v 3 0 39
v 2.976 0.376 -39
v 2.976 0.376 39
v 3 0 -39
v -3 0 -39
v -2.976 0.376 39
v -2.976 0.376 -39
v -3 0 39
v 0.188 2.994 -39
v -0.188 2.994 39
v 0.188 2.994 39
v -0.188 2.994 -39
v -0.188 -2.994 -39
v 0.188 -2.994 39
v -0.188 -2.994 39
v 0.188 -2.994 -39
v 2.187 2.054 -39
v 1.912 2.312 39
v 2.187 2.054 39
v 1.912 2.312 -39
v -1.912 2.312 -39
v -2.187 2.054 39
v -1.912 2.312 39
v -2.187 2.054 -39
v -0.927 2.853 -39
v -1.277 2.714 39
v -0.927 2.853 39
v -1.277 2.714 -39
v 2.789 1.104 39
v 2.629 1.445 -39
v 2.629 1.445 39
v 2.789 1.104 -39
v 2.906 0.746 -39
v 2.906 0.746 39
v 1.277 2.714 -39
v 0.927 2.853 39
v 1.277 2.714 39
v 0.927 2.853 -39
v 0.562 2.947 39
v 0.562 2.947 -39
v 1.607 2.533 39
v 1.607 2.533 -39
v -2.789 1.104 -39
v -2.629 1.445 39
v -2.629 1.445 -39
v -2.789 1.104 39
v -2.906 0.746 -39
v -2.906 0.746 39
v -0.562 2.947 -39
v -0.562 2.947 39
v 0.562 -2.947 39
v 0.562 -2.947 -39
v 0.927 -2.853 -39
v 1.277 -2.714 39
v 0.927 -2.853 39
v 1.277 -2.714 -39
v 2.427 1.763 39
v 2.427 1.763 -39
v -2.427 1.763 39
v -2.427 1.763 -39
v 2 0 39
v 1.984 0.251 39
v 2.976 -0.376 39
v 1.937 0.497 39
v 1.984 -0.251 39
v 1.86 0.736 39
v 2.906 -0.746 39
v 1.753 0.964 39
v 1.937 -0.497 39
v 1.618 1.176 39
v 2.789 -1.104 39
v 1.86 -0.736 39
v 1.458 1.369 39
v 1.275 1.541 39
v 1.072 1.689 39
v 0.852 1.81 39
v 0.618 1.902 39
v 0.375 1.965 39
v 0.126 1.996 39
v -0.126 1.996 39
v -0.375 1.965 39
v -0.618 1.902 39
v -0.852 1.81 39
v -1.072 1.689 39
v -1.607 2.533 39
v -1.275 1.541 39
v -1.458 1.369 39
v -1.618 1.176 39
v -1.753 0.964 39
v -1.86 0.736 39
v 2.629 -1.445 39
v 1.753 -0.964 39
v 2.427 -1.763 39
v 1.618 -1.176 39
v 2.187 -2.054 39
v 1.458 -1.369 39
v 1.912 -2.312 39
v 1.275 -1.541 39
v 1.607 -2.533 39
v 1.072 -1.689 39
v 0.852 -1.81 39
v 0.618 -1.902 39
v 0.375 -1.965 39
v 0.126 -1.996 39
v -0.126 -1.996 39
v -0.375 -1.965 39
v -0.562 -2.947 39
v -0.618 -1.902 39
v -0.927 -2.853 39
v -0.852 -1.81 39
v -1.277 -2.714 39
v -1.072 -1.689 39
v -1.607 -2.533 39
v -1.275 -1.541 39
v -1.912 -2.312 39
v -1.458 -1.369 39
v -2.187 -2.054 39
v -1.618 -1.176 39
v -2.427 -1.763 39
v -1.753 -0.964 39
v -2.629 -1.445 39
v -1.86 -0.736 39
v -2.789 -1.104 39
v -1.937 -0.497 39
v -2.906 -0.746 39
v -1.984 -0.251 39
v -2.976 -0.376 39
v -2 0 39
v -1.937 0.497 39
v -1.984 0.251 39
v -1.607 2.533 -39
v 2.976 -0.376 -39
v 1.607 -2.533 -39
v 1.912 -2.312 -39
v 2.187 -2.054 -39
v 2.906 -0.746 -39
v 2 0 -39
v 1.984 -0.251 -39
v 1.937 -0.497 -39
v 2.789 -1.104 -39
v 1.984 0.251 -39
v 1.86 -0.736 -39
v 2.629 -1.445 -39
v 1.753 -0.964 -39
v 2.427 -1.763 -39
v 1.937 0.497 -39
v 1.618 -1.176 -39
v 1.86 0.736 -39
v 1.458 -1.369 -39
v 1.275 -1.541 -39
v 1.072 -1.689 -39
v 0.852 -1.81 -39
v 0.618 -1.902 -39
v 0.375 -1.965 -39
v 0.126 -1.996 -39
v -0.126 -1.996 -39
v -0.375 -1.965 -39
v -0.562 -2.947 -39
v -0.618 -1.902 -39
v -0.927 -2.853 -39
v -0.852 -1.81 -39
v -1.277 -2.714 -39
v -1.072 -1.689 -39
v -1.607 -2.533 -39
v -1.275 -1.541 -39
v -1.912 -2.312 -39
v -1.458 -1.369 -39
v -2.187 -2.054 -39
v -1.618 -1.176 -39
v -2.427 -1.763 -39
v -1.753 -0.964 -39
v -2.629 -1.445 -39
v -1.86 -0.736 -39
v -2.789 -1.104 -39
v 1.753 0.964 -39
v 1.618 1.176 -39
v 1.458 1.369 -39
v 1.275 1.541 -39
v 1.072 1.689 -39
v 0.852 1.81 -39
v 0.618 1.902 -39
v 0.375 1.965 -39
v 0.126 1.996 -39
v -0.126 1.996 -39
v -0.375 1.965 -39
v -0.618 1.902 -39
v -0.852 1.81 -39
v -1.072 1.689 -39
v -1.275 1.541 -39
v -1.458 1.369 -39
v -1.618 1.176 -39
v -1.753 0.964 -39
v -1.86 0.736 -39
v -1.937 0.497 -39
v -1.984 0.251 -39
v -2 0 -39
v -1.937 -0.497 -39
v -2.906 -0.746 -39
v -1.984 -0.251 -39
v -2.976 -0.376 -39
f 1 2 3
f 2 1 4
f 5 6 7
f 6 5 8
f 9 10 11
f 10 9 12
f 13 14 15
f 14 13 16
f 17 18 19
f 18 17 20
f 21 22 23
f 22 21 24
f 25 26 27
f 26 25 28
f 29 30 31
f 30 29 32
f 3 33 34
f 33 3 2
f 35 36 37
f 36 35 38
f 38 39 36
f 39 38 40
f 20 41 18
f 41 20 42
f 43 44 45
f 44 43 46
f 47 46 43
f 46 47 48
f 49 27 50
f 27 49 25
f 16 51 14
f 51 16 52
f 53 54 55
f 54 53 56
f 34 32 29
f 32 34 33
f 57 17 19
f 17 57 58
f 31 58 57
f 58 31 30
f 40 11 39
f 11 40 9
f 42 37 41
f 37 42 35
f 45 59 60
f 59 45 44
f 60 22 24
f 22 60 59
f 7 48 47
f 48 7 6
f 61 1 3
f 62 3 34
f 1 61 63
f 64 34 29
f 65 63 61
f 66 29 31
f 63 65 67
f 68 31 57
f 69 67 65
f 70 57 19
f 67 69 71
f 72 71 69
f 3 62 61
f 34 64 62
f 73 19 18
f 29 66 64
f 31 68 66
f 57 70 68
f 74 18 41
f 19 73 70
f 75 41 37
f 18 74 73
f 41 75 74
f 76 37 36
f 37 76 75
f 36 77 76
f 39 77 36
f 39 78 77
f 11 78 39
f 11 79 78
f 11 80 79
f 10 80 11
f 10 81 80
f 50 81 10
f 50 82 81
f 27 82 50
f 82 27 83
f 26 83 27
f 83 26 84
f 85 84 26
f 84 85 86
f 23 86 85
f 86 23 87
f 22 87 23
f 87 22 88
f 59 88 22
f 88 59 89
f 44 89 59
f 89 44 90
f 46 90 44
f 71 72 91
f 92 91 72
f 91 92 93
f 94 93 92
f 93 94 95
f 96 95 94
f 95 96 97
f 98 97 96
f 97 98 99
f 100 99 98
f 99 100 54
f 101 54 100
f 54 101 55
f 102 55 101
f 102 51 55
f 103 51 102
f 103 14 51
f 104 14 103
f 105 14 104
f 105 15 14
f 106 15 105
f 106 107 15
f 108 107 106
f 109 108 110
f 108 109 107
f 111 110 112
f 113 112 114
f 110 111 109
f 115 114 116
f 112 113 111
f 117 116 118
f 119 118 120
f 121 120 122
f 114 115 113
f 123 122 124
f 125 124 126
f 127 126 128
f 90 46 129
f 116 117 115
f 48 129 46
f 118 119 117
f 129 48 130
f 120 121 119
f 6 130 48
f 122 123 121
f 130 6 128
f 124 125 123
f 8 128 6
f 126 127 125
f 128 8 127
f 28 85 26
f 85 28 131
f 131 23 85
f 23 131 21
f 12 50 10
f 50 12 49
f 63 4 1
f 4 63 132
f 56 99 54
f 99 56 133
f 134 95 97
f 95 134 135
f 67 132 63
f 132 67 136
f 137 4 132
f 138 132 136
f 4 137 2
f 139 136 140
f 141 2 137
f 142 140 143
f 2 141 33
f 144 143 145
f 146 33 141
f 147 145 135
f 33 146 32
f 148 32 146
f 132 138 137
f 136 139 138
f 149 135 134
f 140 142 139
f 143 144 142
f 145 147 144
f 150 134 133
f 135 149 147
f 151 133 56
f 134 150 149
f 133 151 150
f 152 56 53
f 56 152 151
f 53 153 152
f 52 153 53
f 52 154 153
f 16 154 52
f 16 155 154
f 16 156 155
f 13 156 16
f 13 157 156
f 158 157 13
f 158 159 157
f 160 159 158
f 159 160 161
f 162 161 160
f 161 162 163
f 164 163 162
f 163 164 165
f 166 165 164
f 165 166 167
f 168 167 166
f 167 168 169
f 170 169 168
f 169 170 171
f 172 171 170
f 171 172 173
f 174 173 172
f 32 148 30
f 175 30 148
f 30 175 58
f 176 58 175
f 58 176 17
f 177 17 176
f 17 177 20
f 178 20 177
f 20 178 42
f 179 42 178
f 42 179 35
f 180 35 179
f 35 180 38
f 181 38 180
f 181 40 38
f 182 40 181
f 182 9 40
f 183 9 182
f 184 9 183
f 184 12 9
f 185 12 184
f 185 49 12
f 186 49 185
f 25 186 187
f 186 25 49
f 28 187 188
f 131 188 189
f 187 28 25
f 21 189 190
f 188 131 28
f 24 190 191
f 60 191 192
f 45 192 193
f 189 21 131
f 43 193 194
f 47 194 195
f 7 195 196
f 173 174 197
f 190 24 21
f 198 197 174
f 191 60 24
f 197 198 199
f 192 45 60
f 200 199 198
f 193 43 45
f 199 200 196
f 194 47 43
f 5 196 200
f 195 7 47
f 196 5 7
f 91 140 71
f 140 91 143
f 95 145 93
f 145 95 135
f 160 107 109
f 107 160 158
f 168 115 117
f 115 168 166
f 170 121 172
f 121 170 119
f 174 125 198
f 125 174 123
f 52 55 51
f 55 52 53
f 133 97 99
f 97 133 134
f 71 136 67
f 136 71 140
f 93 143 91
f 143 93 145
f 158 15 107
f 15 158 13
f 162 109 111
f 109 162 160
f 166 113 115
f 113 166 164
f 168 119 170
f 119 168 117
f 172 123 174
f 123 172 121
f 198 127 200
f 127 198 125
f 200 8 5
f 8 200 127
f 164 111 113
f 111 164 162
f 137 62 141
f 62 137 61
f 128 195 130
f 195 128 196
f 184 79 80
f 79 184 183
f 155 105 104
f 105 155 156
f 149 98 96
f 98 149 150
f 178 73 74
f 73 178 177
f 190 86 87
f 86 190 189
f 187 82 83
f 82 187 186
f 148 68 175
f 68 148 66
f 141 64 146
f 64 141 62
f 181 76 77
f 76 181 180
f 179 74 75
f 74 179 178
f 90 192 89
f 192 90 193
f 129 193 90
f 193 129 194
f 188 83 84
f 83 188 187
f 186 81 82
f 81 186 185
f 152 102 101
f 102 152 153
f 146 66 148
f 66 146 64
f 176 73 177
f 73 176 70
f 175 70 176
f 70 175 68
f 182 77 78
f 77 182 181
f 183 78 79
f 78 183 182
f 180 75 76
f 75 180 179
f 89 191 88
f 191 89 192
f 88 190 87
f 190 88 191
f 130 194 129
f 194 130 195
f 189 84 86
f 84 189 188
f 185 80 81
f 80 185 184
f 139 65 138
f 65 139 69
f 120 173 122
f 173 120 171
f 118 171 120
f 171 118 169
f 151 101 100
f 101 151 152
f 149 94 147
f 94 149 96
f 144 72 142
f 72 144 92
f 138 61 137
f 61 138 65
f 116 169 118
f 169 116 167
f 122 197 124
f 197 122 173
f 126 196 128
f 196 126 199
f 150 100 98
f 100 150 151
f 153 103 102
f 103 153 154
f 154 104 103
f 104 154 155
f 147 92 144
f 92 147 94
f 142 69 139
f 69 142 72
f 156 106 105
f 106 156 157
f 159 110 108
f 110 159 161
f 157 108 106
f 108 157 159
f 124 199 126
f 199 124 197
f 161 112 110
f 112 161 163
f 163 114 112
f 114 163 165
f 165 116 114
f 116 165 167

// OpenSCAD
$fn = 50;


difference() {
	union() {
		translate(v = [0, 0, -39.0000000000]) {
			cylinder(h = 78, r = 3.0000000000);
		}
	}
	union() {
		translate(v = [0, 0, -100.0000000000]) {
			cylinder(h = 200, r = 2);
		}
	}
}
